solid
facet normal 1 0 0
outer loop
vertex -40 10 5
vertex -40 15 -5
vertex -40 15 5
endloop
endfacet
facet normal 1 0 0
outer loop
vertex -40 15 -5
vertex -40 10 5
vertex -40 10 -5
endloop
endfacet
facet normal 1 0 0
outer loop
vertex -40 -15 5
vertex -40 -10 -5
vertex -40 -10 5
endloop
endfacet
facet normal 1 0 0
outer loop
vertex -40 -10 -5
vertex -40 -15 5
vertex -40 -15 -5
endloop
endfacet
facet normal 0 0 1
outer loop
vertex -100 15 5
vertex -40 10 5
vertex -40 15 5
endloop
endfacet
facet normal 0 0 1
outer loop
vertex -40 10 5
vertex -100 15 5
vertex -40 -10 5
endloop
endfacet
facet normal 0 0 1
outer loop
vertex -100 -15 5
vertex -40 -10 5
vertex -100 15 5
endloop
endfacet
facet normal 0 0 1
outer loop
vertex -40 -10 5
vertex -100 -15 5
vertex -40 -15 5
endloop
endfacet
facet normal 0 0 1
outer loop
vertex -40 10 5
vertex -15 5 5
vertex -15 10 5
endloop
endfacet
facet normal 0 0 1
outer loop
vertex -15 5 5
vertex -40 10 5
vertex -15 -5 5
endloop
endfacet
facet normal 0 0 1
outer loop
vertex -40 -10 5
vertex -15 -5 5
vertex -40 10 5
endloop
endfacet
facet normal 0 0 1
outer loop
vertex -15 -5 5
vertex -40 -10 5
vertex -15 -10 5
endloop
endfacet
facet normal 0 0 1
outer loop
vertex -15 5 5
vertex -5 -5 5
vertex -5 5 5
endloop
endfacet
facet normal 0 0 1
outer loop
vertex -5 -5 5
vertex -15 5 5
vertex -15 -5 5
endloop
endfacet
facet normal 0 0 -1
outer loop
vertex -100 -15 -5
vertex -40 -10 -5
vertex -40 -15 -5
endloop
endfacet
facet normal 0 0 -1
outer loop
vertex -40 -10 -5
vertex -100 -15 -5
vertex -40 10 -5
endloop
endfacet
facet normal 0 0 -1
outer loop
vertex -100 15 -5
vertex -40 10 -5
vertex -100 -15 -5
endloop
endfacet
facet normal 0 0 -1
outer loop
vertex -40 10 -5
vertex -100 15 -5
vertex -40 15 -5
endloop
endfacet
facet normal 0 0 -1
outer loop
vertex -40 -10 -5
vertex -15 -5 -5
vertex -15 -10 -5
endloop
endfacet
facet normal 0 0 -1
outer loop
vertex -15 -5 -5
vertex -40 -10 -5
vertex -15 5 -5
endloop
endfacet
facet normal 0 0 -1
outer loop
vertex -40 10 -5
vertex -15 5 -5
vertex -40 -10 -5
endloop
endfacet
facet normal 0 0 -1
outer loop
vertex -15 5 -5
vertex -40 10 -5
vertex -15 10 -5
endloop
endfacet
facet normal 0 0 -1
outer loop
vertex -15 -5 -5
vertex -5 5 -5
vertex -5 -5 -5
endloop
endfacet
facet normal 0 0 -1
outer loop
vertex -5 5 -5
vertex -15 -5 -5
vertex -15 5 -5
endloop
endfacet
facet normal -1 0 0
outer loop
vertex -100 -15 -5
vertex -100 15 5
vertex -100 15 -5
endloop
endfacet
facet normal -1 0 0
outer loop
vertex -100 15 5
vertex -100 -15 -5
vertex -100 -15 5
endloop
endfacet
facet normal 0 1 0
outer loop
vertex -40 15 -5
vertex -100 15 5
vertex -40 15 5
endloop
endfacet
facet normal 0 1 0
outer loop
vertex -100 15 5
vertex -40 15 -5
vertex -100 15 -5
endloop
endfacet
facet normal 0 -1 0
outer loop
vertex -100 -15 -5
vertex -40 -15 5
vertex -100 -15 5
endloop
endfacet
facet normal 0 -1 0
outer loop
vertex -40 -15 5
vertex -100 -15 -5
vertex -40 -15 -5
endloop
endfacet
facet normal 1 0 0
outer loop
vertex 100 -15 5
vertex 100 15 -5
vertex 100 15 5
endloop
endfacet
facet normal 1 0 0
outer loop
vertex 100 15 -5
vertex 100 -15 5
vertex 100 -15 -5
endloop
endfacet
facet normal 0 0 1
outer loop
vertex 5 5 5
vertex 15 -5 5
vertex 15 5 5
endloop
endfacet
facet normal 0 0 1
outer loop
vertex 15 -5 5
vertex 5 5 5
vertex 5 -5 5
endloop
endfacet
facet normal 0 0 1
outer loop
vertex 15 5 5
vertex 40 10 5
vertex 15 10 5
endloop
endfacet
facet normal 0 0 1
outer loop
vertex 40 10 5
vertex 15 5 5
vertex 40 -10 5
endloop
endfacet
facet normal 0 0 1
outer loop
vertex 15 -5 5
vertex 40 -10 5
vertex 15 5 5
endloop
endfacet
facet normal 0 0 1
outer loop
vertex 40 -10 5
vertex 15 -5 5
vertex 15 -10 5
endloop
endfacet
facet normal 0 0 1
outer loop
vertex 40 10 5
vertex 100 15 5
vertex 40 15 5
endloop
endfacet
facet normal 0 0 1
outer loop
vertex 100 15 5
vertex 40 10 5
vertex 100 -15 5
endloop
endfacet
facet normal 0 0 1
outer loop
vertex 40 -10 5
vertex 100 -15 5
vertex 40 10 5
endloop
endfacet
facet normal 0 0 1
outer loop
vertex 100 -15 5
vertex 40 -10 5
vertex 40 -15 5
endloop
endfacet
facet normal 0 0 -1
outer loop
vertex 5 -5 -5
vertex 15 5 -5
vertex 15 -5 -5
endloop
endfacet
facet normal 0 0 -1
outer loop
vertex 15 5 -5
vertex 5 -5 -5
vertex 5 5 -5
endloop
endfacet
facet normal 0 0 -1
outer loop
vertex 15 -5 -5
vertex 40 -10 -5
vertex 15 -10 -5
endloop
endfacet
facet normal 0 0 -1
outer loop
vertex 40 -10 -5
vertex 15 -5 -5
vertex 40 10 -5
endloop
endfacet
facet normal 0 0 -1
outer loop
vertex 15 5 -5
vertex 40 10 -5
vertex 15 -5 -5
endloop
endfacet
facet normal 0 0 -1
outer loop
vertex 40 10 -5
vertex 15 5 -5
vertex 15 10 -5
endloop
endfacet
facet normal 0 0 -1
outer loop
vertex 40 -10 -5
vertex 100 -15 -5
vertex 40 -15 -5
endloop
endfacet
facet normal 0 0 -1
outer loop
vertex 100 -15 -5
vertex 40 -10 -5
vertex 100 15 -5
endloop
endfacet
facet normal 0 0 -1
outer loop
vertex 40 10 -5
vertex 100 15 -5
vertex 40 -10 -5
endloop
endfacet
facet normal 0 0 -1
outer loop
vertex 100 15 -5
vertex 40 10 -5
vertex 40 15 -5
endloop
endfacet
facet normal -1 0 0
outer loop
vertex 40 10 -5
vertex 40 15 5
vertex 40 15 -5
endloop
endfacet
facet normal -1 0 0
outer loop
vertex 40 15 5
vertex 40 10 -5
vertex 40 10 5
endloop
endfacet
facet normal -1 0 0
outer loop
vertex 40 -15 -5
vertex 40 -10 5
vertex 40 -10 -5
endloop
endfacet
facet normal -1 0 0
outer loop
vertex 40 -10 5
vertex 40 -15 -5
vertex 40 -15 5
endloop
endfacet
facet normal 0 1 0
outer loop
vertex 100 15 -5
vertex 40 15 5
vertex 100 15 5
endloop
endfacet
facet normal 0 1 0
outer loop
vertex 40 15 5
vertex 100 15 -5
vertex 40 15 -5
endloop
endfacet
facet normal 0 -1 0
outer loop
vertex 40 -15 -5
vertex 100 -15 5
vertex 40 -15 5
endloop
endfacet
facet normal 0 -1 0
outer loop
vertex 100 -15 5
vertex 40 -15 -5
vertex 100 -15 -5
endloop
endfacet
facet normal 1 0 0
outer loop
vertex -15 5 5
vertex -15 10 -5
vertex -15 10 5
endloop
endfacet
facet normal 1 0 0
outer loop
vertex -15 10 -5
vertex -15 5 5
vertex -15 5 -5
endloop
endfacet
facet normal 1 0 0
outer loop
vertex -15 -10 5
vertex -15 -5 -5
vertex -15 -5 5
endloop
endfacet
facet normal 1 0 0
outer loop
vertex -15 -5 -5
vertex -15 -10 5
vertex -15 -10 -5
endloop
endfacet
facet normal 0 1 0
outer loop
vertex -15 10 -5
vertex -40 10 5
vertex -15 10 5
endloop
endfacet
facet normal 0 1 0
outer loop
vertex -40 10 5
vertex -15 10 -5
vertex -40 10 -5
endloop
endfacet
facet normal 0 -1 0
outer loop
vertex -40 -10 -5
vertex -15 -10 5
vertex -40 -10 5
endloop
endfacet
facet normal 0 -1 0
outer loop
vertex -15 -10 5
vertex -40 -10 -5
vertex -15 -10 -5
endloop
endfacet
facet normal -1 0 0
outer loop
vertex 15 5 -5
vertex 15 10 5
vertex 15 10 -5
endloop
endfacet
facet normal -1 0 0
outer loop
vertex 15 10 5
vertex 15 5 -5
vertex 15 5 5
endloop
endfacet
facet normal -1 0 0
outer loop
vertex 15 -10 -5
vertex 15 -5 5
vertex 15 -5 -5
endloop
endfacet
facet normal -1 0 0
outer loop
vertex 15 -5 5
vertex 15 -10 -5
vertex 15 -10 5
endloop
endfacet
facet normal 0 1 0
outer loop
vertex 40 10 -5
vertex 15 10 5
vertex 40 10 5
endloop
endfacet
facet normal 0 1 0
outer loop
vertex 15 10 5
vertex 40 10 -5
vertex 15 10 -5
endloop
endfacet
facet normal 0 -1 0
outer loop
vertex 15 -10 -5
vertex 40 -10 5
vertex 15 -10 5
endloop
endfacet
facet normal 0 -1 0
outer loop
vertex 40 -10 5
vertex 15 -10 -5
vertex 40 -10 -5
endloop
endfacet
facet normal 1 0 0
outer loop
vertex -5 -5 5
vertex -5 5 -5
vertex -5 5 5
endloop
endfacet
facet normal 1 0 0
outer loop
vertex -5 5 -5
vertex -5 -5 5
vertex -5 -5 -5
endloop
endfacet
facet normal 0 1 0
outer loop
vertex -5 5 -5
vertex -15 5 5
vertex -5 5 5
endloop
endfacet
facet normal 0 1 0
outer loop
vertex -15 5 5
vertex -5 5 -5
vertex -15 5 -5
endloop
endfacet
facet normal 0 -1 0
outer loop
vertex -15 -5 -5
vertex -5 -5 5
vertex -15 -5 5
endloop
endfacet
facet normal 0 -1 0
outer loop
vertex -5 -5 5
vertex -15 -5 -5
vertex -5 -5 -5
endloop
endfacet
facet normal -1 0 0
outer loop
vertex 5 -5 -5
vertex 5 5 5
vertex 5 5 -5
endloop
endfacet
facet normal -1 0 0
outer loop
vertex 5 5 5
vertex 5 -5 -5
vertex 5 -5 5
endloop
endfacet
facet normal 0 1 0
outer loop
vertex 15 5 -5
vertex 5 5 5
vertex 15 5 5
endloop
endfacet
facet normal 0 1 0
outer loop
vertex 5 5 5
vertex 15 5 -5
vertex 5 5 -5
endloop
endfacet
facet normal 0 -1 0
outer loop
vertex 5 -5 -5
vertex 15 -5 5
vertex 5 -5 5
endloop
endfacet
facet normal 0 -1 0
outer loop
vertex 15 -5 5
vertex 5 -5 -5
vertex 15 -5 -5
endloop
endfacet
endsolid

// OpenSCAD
// Define dimensions for the blocks
large_block_size = [60, 30, 10];  // [length, width, height]
medium_block_size = [40, 20, 10];
small_block_size = [20, 10, 10];

// Define positions for each block
large_block_positions = [
    [-70, 0, 0],  // First large block
    [70, 0, 0]    // Second large block
];

medium_block_positions = [
    [-35, 0, 0],  // First medium block
    [35, 0, 0]    // Second medium block
];

small_block_positions = [
    [-15, 0, 0],  // First small block
    [15, 0, 0]    // Second small block
];

// Create the blocks
module large_rectangular_block() {
    cube(large_block_size, center = true);
}

module medium_rectangular_block() {
    cube(medium_block_size, center = true);
}

module small_rectangular_block() {
    cube(small_block_size, center = true);
}

// Assemble the model
for (pos = large_block_positions) {
    translate(pos) large_rectangular_block();
}

for (pos = medium_block_positions) {
    translate(pos) medium_rectangular_block();
}

for (pos = small_block_positions) {
    translate(pos) small_rectangular_block();
}
